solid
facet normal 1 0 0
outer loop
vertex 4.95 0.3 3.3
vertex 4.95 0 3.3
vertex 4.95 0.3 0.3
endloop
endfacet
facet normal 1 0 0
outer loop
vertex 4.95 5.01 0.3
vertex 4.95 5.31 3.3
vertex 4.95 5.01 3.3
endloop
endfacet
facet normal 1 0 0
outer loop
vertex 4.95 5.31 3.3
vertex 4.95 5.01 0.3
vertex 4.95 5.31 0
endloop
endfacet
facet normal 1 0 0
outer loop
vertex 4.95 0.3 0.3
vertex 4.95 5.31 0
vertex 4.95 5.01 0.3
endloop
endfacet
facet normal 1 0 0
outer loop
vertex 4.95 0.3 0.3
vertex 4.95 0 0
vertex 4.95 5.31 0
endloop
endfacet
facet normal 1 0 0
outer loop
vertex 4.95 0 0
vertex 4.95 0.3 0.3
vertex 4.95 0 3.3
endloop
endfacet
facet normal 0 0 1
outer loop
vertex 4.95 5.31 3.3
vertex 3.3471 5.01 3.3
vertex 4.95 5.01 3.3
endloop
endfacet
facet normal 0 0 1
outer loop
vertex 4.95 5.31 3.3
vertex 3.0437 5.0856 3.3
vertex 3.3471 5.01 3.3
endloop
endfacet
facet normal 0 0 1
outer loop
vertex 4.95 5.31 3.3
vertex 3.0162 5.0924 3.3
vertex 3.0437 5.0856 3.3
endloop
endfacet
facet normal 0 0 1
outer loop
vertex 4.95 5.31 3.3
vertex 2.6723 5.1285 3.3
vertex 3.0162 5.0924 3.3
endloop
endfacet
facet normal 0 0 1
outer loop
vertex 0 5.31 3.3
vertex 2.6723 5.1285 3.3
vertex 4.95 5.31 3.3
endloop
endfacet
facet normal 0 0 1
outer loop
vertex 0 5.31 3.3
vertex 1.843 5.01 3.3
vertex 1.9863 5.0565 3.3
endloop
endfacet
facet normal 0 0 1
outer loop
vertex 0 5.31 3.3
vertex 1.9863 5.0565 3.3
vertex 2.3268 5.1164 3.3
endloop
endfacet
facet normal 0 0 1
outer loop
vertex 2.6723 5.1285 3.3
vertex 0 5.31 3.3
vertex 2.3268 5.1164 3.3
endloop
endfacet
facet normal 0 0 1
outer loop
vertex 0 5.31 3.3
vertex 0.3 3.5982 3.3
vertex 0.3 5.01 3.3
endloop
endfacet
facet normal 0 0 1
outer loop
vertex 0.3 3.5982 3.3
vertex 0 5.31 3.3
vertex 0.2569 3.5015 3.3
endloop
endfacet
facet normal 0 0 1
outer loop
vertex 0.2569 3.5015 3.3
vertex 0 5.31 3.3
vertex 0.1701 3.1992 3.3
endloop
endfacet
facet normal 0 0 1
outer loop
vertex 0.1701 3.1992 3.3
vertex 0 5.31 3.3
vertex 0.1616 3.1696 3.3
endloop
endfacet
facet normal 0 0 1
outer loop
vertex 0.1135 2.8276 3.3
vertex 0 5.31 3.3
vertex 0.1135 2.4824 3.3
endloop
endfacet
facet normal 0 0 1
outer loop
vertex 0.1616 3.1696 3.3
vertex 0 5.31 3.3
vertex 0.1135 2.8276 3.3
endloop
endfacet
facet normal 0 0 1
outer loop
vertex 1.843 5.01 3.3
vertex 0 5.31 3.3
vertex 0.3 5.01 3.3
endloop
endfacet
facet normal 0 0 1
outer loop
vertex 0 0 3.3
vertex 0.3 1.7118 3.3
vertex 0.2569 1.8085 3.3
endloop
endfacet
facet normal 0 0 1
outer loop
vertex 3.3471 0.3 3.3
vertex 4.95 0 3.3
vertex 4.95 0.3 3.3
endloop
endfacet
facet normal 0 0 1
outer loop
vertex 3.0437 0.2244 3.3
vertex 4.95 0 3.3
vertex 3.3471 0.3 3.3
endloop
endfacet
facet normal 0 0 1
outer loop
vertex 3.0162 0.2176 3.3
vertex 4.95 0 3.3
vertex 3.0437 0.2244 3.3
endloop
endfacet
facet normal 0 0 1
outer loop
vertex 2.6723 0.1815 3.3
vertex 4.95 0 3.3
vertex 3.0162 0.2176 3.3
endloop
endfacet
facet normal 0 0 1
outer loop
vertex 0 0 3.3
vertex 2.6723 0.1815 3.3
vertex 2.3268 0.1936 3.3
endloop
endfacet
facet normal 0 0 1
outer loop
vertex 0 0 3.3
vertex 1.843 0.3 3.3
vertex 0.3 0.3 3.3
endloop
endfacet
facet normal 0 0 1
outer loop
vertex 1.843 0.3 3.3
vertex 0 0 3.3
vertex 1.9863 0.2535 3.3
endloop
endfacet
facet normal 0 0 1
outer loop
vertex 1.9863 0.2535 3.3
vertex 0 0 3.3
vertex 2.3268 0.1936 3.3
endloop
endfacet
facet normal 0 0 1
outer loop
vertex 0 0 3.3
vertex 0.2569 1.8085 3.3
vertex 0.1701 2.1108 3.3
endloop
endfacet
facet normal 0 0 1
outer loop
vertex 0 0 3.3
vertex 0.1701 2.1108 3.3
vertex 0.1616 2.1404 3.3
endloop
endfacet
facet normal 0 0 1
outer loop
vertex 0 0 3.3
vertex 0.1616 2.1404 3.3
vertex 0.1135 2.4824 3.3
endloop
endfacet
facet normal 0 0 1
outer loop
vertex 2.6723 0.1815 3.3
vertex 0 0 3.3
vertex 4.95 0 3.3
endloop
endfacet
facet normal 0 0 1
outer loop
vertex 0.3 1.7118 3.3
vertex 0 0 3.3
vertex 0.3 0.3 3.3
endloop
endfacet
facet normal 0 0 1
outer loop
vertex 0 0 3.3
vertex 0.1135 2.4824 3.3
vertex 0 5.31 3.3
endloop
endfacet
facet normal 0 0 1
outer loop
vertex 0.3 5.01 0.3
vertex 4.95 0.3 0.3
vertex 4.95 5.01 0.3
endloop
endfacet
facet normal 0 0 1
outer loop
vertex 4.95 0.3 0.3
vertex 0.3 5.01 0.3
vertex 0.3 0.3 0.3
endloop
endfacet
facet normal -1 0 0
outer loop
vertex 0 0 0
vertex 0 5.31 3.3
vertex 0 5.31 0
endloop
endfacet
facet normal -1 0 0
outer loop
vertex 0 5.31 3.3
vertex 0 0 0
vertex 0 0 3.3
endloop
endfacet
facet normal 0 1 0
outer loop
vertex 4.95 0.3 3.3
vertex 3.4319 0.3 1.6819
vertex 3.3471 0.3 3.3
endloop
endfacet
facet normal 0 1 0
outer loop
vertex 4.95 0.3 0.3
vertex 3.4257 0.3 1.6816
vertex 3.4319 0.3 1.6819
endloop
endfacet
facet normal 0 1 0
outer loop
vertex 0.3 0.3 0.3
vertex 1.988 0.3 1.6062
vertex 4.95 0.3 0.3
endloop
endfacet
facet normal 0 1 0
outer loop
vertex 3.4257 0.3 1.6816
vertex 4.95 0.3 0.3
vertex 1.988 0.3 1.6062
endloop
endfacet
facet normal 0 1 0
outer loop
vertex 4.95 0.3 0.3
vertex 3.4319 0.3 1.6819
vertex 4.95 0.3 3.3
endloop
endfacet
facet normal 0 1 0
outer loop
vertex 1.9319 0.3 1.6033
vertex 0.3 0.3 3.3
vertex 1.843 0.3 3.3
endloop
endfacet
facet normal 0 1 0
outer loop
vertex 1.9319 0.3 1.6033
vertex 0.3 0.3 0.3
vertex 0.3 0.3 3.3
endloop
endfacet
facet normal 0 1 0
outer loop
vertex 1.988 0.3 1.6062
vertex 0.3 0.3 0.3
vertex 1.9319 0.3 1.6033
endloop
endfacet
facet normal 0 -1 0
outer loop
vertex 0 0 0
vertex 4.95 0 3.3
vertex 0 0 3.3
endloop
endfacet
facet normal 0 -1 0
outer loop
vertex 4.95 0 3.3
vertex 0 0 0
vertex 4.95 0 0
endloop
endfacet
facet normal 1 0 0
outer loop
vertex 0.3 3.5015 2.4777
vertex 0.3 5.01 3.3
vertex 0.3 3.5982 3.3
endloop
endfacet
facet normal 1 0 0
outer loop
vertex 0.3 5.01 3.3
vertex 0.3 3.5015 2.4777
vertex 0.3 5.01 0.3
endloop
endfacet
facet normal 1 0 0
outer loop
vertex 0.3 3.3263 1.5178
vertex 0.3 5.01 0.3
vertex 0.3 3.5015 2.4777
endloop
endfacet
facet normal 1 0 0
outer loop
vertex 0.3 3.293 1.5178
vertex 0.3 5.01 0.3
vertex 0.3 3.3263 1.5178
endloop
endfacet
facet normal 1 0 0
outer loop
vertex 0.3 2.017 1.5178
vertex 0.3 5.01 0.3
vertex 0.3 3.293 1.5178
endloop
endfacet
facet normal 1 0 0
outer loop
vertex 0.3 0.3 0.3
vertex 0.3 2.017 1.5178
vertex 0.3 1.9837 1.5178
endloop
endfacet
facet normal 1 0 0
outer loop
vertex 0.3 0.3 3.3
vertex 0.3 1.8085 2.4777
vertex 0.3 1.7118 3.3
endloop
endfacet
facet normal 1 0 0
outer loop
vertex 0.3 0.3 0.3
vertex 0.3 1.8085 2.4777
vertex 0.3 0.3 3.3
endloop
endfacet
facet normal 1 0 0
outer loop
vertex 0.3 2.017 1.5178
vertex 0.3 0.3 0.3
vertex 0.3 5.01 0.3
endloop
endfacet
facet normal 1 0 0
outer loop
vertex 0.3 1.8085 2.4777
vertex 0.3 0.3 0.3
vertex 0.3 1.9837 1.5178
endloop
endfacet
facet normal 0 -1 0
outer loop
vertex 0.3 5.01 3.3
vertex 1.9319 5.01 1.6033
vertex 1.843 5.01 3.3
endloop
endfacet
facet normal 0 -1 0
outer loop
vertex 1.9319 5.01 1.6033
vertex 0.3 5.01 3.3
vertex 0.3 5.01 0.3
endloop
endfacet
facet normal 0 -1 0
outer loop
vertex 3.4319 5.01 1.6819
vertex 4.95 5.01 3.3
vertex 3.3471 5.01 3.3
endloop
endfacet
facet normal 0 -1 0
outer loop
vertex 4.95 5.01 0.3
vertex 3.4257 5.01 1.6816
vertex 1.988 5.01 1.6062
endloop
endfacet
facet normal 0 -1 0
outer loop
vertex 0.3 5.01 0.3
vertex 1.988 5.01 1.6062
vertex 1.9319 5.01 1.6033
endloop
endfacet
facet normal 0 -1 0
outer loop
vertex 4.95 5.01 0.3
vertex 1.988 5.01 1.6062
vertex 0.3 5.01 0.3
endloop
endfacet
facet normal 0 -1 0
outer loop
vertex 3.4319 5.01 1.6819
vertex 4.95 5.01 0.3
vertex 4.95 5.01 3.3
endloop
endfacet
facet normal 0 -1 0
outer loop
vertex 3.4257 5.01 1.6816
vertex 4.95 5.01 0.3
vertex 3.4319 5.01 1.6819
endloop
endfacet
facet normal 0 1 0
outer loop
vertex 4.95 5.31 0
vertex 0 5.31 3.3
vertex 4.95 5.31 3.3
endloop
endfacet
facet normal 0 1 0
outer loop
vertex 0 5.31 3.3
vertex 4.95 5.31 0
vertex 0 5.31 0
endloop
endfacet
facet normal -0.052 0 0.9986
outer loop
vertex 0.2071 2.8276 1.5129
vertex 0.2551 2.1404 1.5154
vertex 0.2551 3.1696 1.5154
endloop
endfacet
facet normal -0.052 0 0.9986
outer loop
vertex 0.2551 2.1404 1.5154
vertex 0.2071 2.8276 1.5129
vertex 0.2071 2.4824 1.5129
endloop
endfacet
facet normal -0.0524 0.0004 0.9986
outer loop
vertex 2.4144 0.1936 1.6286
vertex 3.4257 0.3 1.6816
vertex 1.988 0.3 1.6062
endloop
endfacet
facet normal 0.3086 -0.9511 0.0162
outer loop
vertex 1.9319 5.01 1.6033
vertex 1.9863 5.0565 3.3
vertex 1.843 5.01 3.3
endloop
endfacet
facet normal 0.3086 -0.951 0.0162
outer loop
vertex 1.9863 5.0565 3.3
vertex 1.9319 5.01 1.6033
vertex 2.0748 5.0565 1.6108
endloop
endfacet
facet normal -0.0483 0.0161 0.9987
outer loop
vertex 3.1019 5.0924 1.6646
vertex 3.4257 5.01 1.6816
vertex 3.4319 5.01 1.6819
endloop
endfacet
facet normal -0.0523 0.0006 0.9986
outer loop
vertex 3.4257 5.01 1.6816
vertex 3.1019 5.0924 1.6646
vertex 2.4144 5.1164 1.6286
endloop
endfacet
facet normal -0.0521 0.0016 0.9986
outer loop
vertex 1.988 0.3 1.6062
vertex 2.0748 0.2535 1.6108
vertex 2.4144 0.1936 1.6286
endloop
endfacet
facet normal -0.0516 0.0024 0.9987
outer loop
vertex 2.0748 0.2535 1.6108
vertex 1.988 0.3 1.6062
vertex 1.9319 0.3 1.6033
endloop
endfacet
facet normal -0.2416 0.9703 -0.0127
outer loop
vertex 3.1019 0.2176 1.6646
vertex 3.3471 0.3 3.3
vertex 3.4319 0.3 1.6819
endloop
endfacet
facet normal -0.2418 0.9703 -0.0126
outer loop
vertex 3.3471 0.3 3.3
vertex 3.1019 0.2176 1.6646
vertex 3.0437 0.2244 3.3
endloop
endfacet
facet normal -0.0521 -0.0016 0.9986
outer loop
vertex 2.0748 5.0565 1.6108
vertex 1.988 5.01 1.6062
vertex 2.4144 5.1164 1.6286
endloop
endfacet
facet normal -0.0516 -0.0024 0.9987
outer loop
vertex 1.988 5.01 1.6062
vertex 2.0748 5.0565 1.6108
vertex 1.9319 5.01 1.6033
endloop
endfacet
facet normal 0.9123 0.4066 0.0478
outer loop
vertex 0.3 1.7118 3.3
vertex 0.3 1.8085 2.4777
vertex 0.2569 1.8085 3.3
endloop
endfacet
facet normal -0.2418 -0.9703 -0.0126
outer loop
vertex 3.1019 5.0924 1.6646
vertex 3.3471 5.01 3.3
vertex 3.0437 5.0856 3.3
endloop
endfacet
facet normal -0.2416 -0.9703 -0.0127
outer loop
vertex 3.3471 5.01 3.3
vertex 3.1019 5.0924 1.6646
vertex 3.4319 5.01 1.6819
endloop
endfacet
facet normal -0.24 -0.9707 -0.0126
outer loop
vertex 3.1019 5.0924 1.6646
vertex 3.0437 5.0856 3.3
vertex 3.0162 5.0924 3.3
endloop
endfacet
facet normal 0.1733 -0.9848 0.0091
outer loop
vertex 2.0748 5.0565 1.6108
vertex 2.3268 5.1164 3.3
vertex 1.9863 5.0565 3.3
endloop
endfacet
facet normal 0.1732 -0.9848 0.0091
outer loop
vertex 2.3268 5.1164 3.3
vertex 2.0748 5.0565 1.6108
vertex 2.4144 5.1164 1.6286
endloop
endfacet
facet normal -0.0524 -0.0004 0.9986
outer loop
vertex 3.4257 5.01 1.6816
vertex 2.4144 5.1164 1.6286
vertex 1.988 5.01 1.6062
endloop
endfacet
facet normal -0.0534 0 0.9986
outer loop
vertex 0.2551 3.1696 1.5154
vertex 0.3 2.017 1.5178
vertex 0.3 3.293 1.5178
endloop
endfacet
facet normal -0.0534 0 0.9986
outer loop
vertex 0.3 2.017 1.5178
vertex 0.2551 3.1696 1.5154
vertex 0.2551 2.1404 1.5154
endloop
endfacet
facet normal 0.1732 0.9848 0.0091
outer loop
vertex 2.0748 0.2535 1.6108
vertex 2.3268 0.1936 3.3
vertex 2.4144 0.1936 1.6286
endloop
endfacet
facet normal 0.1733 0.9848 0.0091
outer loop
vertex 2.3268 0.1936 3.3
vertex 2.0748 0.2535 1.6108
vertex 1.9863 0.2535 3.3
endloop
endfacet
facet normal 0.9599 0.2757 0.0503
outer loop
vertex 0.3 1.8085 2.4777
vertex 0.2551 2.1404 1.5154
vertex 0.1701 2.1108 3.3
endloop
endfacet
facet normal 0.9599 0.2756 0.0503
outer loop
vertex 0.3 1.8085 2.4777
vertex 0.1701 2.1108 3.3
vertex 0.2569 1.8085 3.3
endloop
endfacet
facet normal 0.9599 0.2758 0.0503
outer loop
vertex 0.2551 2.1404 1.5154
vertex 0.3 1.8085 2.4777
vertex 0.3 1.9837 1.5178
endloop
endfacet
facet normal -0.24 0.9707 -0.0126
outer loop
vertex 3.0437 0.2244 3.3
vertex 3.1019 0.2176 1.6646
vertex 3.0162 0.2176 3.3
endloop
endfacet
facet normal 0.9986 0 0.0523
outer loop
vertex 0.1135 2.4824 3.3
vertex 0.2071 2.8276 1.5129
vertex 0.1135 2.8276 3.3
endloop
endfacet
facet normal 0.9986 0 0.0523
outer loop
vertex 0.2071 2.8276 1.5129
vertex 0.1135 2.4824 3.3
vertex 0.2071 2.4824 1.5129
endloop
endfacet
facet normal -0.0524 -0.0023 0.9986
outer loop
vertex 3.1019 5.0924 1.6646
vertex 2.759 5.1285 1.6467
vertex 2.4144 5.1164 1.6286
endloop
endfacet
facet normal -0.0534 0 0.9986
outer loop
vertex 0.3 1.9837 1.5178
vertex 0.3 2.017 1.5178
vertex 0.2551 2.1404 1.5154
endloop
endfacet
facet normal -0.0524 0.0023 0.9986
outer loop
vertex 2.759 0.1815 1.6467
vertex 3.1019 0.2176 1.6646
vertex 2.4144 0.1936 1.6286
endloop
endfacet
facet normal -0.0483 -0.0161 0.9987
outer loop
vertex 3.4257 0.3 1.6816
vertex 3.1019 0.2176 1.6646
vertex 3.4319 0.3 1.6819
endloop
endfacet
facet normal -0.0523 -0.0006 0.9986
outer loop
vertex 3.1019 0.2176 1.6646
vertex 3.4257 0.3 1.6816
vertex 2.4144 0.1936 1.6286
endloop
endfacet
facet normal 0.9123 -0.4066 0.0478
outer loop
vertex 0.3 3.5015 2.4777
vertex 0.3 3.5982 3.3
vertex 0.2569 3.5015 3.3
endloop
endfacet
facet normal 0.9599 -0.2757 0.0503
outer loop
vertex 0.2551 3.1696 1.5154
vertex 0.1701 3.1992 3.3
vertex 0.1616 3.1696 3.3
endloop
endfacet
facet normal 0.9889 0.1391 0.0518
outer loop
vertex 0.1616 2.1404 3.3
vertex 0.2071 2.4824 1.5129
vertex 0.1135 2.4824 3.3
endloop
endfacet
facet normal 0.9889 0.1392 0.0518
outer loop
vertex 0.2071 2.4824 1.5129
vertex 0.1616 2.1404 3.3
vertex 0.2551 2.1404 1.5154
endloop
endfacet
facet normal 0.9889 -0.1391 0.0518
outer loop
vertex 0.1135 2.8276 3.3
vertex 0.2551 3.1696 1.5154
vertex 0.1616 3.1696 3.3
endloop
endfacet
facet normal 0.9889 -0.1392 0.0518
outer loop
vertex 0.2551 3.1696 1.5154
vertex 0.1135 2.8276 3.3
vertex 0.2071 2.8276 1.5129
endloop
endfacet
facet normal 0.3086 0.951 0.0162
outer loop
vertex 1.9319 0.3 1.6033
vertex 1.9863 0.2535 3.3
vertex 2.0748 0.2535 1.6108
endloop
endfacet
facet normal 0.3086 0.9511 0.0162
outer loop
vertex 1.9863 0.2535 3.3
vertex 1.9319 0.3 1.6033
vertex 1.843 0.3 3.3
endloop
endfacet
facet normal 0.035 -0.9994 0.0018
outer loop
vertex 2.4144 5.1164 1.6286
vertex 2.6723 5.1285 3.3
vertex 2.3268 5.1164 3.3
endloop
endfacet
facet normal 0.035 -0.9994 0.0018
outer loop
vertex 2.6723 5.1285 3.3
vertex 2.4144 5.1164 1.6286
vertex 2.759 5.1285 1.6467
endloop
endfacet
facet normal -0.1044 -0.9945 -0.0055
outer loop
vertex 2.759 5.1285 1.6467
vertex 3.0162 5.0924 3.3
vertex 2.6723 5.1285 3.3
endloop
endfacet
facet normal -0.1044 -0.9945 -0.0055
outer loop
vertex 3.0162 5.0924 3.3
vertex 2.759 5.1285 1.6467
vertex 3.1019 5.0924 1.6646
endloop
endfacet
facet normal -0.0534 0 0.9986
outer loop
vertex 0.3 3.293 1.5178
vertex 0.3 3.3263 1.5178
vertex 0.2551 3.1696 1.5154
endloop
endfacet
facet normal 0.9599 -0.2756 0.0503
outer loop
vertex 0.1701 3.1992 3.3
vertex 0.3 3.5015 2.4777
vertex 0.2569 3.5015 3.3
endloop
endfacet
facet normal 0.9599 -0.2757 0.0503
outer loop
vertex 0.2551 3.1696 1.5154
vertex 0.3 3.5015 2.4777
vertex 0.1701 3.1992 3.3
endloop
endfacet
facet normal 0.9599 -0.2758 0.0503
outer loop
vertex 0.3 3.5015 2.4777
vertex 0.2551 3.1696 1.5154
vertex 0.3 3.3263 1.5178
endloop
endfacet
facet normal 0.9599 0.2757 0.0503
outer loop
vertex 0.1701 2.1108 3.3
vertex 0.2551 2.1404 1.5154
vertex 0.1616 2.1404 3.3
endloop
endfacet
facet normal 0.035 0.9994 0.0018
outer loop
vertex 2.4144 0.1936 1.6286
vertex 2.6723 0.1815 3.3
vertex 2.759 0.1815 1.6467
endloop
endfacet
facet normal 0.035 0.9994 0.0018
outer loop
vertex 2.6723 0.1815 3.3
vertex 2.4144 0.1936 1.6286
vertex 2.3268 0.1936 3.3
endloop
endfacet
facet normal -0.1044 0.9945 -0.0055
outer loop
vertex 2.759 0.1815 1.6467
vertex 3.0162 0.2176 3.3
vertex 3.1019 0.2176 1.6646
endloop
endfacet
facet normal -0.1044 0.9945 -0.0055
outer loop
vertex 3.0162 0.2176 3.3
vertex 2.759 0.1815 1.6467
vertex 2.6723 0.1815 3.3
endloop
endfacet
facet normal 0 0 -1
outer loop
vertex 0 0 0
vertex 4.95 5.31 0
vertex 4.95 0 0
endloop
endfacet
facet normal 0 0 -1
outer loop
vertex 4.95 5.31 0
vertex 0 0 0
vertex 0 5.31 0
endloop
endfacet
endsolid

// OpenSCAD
//Tapa para detener la caída del agua en un bajante y que no deteriore el suelo

$fn = 0;    //número de fragmentos
$fa = 8;    //ángulo mínimo
$fs = 0.1;  //tamaño mínimo

offset = 0.001;

Tubo = 5; //diámetro exterior en centímetros

diametroTubo = Tubo - 0.05; //Para que quede el tubo ajustado en las muescas

inclinacionTubo = -3;       //Para que el agua no se quede estancada
offsetTuboX = 0.1;          //Si al inclinar el tubo queda una pared endeble, mueve el tubo

grosorParedes = 0.3;
grosorMuesca = 0.12;
muescaFinal = grosorParedes - grosorMuesca;
alturaParedes = 3;
alturaMuesca = 1.5;

cube([diametroTubo, diametroTubo + (muescaFinal * 2), grosorParedes]);

difference(){
    union(){
        
        translate([0, 0, grosorParedes])
        cube([diametroTubo, grosorParedes, alturaParedes]);

        translate([0, grosorParedes, grosorParedes])
        cube([grosorParedes, diametroTubo - (grosorMuesca * 2), alturaParedes]);

        translate([0,diametroTubo + grosorParedes - (grosorMuesca * 2), grosorParedes])
        cube([diametroTubo, grosorParedes, alturaParedes]);
        }
    
    rotate([0,inclinacionTubo,0])
    translate([diametroTubo / 2 + muescaFinal + offsetTuboX, diametroTubo / 2 + muescaFinal, alturaMuesca])
    cylinder(h = 20, d = diametroTubo);
    
    }
